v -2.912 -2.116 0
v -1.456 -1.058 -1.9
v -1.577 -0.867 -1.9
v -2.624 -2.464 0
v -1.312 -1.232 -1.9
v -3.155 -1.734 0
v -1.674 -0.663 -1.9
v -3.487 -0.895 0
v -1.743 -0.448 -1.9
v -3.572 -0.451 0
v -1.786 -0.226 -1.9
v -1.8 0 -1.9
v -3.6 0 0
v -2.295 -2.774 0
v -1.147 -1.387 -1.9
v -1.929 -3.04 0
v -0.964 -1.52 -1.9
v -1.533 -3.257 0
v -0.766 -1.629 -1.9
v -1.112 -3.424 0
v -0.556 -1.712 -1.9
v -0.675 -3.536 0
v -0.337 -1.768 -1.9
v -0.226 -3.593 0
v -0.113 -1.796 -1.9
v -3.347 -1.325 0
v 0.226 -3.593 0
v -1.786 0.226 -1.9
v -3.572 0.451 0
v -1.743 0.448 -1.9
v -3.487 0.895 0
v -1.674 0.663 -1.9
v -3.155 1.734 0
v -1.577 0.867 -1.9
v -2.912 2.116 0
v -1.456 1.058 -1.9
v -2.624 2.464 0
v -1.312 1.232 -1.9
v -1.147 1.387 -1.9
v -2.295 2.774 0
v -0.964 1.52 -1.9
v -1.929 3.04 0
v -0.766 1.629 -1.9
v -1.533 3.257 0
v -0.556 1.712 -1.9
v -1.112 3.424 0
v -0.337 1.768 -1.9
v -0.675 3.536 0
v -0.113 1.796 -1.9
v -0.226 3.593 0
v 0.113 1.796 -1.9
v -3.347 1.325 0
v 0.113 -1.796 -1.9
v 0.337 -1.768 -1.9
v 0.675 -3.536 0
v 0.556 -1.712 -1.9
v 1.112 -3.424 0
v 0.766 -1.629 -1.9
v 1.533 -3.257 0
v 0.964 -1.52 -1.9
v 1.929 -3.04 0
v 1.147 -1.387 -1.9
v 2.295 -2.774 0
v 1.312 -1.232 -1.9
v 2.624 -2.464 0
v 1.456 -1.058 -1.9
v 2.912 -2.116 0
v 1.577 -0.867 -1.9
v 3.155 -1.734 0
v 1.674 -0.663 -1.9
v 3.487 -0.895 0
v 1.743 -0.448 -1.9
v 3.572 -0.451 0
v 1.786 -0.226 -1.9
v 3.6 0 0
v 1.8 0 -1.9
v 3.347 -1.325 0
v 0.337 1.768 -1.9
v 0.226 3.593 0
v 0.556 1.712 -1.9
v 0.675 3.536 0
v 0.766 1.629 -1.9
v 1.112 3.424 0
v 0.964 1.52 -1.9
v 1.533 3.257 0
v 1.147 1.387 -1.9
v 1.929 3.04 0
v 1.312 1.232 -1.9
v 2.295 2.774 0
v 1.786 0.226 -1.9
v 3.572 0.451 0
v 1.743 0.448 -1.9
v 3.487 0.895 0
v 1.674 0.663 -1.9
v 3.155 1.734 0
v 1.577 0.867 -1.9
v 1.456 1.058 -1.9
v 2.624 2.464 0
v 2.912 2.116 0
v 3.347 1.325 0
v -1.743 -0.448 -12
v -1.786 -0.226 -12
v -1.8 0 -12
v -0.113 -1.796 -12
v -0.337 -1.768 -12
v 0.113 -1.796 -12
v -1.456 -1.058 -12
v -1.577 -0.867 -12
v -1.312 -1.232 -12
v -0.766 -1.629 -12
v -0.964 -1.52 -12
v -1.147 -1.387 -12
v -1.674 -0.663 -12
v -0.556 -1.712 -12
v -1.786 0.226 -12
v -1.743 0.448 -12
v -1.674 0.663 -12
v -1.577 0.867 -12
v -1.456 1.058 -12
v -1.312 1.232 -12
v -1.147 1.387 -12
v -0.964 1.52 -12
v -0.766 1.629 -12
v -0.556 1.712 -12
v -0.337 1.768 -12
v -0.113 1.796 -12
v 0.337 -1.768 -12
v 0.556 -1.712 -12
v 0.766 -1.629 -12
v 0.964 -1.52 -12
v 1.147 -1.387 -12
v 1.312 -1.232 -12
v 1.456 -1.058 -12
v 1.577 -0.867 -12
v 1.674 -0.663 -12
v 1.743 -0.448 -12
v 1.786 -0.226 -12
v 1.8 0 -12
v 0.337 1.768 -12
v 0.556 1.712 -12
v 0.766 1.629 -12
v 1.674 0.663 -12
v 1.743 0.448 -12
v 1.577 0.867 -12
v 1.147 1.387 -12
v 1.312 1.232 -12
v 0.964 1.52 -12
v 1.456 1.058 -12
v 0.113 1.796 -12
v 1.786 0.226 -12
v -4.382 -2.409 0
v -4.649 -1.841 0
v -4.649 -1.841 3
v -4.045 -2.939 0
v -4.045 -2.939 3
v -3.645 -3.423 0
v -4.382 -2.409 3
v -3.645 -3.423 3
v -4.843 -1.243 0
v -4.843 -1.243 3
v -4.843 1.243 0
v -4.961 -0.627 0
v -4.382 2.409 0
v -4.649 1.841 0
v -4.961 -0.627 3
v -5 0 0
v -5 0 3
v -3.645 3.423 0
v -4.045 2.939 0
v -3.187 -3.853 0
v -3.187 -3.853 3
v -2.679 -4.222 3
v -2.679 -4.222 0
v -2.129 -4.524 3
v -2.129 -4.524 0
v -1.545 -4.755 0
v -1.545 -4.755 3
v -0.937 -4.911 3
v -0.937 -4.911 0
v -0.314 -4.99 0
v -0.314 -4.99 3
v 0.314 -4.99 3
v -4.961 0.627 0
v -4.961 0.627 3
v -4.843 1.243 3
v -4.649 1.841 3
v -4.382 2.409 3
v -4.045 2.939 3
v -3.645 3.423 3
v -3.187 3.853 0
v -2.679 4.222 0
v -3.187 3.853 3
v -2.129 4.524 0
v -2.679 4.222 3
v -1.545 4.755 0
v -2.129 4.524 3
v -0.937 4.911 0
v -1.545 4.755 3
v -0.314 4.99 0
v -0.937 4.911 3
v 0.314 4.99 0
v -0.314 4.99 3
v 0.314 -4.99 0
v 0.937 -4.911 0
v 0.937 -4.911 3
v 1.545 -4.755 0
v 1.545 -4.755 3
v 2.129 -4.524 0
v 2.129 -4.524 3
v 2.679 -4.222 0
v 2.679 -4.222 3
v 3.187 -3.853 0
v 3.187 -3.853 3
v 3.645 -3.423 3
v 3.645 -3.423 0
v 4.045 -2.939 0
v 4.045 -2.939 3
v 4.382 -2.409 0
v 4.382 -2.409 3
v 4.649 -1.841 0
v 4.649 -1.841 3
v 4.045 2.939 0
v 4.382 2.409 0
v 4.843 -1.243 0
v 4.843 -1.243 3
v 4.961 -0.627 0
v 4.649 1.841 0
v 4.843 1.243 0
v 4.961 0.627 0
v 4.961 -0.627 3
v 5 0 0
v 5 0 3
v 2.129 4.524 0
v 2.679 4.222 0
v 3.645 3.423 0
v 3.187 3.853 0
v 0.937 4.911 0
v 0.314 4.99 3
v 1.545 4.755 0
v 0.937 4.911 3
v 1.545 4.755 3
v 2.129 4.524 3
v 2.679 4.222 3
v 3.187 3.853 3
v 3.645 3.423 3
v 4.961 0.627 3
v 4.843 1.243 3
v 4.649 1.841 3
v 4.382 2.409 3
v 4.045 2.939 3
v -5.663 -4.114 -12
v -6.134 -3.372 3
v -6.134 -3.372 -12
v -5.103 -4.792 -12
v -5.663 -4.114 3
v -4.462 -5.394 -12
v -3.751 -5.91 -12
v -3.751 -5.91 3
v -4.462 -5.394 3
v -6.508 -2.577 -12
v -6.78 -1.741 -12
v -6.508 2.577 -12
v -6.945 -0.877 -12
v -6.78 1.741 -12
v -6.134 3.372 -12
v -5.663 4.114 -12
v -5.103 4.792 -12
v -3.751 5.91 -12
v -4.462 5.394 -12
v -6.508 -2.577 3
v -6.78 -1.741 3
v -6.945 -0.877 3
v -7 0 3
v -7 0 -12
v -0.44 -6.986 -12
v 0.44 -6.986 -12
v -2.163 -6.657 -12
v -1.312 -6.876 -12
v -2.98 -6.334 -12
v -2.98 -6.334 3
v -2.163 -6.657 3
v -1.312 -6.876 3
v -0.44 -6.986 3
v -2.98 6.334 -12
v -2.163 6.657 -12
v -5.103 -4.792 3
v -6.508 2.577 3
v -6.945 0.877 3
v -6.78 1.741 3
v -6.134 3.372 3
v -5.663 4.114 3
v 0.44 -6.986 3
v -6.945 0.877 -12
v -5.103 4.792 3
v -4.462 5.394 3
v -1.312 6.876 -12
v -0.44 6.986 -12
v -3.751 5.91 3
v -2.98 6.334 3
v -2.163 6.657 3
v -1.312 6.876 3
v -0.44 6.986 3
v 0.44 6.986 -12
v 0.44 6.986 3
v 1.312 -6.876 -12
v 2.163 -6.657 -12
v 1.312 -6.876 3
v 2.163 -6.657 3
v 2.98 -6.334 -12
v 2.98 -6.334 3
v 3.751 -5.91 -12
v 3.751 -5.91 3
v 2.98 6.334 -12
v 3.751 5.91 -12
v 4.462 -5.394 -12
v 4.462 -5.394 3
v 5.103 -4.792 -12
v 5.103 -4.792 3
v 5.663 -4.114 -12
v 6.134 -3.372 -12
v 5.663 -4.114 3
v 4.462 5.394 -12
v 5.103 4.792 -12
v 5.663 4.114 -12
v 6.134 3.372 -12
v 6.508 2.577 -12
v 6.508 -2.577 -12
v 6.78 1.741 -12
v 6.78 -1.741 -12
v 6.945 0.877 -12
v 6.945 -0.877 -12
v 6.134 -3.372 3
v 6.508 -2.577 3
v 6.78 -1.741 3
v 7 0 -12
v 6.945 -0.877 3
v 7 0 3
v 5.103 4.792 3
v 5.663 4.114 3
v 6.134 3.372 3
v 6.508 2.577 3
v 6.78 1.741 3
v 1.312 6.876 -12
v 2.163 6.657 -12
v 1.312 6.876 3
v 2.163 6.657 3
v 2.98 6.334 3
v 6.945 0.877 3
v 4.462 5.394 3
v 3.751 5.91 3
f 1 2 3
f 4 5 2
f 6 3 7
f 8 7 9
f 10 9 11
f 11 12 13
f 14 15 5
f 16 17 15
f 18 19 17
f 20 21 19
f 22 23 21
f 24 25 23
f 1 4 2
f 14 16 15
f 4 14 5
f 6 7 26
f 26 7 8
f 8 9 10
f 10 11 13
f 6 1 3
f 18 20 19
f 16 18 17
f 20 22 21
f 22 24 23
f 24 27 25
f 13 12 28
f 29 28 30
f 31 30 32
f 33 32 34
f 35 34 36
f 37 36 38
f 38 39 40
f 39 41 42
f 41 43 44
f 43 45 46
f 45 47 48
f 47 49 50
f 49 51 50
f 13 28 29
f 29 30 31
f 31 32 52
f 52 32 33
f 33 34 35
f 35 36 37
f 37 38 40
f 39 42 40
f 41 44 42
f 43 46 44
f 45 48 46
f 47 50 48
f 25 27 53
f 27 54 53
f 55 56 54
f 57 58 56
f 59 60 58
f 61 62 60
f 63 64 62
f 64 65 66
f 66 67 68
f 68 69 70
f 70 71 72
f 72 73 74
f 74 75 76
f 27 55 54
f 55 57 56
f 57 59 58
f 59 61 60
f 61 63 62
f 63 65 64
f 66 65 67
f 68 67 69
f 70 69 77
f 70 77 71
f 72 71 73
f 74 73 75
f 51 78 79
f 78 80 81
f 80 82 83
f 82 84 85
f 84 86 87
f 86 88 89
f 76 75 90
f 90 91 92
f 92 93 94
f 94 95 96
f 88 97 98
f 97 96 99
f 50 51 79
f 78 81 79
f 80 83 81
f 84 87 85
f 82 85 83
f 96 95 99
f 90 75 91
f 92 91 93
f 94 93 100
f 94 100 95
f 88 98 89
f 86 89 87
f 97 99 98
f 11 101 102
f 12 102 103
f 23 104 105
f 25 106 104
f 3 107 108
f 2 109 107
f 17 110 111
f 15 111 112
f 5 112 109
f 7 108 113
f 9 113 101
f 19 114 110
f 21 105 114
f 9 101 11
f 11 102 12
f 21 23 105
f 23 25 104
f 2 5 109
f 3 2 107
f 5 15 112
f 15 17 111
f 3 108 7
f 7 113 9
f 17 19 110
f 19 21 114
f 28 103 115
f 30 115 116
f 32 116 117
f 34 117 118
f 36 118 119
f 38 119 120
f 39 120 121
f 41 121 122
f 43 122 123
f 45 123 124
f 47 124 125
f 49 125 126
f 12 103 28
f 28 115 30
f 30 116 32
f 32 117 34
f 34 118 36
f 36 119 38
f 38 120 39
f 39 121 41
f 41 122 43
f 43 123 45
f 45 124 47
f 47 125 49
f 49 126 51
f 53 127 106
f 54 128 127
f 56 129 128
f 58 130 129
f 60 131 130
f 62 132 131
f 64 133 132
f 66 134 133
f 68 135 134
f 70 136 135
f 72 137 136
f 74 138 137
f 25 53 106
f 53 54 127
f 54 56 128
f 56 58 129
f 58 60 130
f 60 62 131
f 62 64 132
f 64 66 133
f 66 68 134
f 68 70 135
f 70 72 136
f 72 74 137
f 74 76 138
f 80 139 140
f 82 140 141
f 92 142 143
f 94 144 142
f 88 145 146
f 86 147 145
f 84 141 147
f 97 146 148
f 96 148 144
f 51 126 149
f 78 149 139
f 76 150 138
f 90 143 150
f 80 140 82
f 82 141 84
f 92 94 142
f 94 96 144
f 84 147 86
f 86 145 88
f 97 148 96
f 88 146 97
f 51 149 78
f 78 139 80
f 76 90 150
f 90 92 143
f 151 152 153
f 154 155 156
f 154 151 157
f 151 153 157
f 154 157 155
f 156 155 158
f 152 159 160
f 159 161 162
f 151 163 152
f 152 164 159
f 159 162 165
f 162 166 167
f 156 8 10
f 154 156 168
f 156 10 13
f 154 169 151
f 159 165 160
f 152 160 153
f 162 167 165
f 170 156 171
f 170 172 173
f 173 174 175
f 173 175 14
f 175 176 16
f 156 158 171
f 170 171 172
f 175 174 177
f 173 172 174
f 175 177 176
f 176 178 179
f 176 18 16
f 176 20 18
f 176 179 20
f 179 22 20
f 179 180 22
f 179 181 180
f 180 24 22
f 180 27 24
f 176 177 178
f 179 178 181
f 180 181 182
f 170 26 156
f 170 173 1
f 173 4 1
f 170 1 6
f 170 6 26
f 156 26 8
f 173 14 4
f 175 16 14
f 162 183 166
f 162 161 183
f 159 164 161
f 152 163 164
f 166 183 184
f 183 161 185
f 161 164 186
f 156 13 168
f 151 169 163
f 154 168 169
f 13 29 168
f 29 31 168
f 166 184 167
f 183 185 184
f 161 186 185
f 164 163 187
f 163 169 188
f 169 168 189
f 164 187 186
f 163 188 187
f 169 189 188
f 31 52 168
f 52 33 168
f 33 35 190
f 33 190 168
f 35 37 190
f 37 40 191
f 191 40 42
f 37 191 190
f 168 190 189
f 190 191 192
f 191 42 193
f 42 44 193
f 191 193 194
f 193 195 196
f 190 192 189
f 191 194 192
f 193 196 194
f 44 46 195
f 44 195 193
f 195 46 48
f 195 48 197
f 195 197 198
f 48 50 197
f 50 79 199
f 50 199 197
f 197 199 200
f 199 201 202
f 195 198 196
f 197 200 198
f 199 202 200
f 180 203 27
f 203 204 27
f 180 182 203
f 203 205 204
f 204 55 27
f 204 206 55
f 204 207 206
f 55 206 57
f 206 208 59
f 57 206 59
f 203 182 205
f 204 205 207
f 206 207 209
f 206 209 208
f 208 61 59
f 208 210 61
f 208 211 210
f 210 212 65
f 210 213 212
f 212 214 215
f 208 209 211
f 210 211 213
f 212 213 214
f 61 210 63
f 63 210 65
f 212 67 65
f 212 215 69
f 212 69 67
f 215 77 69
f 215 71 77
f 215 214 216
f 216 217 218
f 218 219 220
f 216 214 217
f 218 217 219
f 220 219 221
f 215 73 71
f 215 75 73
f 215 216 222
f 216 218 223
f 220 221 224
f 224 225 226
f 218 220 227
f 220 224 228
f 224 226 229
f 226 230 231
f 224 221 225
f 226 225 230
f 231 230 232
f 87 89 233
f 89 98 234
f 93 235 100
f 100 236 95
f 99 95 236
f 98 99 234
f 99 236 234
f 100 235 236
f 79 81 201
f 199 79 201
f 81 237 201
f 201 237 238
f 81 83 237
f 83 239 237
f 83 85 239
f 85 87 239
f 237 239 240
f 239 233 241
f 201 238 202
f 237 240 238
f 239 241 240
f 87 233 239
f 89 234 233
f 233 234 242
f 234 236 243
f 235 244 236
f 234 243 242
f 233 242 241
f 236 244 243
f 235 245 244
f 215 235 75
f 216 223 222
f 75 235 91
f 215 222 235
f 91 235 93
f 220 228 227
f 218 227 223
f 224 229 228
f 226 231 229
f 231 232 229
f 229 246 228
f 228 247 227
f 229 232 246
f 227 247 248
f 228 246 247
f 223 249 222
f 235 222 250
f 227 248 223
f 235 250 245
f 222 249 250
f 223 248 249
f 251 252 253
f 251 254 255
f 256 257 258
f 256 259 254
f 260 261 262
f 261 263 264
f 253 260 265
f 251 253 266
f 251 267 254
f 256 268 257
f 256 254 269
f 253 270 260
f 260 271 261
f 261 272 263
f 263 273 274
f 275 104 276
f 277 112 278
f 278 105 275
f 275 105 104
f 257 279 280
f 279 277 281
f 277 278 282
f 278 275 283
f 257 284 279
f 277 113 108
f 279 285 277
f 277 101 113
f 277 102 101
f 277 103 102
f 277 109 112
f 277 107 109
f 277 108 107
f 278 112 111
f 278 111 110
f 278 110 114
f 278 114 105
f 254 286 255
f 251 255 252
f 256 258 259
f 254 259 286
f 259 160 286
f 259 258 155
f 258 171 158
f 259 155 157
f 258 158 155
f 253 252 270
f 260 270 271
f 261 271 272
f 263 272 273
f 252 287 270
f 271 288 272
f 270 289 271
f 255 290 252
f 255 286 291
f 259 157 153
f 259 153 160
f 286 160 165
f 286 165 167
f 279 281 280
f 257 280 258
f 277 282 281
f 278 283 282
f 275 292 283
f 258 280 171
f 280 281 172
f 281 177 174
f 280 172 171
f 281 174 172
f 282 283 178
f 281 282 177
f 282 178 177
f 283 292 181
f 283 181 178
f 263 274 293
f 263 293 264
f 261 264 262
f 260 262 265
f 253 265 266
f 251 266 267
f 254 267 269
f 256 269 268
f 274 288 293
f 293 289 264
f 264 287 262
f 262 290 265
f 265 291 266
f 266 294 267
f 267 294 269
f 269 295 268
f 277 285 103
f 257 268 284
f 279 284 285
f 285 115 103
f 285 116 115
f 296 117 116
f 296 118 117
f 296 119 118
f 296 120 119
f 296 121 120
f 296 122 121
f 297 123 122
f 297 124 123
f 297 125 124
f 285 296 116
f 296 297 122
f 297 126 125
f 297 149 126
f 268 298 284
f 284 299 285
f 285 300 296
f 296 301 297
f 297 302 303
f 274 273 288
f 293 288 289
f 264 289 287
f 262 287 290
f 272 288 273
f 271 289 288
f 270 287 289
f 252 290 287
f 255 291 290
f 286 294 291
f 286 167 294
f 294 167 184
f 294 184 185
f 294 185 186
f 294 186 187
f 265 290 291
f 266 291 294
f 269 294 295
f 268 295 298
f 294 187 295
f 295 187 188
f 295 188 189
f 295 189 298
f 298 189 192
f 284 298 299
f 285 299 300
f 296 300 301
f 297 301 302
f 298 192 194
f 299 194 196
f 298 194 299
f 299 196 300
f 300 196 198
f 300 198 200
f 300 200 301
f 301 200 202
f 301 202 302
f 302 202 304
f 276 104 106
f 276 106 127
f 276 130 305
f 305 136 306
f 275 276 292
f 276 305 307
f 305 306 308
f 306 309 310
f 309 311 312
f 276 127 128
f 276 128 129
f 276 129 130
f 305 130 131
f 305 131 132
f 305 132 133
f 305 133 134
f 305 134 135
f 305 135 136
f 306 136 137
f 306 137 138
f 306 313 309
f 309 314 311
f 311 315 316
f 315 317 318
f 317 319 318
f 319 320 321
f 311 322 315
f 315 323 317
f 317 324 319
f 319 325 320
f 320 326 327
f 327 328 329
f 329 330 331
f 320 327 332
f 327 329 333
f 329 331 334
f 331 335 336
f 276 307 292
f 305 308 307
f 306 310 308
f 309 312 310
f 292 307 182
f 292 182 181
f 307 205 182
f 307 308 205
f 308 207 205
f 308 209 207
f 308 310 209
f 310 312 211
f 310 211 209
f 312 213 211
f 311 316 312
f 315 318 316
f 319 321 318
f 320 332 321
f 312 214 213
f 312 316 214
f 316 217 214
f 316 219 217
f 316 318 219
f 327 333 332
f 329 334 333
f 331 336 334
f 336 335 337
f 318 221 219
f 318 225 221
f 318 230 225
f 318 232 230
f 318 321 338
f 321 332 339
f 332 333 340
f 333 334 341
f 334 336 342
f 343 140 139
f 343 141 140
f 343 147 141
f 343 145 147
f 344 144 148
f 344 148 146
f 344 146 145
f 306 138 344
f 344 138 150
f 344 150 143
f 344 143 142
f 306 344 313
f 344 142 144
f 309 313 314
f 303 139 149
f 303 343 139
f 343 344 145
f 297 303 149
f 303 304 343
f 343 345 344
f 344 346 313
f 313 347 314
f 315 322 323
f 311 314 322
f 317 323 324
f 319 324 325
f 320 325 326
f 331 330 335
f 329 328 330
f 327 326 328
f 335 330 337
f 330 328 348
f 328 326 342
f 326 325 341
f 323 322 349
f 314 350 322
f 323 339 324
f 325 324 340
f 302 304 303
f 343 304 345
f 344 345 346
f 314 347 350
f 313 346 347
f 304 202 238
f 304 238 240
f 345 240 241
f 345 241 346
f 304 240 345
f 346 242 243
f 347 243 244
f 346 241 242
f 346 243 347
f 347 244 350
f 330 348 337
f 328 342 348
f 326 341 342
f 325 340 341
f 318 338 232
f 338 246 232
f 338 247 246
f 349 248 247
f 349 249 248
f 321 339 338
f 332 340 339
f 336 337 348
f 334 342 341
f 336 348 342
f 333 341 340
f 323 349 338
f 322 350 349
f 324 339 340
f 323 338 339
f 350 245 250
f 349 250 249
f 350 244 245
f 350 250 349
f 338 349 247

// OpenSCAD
$fn = 50;

difference() {
	union() {
		translate(v = [0, 0, -12.0]) {
			cylinder(h = 15, r = 7.0);
		}
	}
	union() {
		translate(v = [0, 0, 0]) {
			rotate(a = [0, 0, 0]) {
				difference() {
					union() {
						translate(v = [0, 0, -15.0]) {
							cylinder(h = 15, r = 1.5);
						}
						translate(v = [0, 0, -1.9]) {
							cylinder(h = 1.9, r1 = 1.8, r2 = 3.6);
						}
						translate(v = [0, 0, -15.0]) {
							cylinder(h = 15, r = 1.8);
						}
						translate(v = [0, 0, -15.0]) {
							cylinder(h = 15, r = 1.5);
						}
					}
					union();
				}
			}
		}
		#cylinder(h = 3, r = 5.0);
	}
}
